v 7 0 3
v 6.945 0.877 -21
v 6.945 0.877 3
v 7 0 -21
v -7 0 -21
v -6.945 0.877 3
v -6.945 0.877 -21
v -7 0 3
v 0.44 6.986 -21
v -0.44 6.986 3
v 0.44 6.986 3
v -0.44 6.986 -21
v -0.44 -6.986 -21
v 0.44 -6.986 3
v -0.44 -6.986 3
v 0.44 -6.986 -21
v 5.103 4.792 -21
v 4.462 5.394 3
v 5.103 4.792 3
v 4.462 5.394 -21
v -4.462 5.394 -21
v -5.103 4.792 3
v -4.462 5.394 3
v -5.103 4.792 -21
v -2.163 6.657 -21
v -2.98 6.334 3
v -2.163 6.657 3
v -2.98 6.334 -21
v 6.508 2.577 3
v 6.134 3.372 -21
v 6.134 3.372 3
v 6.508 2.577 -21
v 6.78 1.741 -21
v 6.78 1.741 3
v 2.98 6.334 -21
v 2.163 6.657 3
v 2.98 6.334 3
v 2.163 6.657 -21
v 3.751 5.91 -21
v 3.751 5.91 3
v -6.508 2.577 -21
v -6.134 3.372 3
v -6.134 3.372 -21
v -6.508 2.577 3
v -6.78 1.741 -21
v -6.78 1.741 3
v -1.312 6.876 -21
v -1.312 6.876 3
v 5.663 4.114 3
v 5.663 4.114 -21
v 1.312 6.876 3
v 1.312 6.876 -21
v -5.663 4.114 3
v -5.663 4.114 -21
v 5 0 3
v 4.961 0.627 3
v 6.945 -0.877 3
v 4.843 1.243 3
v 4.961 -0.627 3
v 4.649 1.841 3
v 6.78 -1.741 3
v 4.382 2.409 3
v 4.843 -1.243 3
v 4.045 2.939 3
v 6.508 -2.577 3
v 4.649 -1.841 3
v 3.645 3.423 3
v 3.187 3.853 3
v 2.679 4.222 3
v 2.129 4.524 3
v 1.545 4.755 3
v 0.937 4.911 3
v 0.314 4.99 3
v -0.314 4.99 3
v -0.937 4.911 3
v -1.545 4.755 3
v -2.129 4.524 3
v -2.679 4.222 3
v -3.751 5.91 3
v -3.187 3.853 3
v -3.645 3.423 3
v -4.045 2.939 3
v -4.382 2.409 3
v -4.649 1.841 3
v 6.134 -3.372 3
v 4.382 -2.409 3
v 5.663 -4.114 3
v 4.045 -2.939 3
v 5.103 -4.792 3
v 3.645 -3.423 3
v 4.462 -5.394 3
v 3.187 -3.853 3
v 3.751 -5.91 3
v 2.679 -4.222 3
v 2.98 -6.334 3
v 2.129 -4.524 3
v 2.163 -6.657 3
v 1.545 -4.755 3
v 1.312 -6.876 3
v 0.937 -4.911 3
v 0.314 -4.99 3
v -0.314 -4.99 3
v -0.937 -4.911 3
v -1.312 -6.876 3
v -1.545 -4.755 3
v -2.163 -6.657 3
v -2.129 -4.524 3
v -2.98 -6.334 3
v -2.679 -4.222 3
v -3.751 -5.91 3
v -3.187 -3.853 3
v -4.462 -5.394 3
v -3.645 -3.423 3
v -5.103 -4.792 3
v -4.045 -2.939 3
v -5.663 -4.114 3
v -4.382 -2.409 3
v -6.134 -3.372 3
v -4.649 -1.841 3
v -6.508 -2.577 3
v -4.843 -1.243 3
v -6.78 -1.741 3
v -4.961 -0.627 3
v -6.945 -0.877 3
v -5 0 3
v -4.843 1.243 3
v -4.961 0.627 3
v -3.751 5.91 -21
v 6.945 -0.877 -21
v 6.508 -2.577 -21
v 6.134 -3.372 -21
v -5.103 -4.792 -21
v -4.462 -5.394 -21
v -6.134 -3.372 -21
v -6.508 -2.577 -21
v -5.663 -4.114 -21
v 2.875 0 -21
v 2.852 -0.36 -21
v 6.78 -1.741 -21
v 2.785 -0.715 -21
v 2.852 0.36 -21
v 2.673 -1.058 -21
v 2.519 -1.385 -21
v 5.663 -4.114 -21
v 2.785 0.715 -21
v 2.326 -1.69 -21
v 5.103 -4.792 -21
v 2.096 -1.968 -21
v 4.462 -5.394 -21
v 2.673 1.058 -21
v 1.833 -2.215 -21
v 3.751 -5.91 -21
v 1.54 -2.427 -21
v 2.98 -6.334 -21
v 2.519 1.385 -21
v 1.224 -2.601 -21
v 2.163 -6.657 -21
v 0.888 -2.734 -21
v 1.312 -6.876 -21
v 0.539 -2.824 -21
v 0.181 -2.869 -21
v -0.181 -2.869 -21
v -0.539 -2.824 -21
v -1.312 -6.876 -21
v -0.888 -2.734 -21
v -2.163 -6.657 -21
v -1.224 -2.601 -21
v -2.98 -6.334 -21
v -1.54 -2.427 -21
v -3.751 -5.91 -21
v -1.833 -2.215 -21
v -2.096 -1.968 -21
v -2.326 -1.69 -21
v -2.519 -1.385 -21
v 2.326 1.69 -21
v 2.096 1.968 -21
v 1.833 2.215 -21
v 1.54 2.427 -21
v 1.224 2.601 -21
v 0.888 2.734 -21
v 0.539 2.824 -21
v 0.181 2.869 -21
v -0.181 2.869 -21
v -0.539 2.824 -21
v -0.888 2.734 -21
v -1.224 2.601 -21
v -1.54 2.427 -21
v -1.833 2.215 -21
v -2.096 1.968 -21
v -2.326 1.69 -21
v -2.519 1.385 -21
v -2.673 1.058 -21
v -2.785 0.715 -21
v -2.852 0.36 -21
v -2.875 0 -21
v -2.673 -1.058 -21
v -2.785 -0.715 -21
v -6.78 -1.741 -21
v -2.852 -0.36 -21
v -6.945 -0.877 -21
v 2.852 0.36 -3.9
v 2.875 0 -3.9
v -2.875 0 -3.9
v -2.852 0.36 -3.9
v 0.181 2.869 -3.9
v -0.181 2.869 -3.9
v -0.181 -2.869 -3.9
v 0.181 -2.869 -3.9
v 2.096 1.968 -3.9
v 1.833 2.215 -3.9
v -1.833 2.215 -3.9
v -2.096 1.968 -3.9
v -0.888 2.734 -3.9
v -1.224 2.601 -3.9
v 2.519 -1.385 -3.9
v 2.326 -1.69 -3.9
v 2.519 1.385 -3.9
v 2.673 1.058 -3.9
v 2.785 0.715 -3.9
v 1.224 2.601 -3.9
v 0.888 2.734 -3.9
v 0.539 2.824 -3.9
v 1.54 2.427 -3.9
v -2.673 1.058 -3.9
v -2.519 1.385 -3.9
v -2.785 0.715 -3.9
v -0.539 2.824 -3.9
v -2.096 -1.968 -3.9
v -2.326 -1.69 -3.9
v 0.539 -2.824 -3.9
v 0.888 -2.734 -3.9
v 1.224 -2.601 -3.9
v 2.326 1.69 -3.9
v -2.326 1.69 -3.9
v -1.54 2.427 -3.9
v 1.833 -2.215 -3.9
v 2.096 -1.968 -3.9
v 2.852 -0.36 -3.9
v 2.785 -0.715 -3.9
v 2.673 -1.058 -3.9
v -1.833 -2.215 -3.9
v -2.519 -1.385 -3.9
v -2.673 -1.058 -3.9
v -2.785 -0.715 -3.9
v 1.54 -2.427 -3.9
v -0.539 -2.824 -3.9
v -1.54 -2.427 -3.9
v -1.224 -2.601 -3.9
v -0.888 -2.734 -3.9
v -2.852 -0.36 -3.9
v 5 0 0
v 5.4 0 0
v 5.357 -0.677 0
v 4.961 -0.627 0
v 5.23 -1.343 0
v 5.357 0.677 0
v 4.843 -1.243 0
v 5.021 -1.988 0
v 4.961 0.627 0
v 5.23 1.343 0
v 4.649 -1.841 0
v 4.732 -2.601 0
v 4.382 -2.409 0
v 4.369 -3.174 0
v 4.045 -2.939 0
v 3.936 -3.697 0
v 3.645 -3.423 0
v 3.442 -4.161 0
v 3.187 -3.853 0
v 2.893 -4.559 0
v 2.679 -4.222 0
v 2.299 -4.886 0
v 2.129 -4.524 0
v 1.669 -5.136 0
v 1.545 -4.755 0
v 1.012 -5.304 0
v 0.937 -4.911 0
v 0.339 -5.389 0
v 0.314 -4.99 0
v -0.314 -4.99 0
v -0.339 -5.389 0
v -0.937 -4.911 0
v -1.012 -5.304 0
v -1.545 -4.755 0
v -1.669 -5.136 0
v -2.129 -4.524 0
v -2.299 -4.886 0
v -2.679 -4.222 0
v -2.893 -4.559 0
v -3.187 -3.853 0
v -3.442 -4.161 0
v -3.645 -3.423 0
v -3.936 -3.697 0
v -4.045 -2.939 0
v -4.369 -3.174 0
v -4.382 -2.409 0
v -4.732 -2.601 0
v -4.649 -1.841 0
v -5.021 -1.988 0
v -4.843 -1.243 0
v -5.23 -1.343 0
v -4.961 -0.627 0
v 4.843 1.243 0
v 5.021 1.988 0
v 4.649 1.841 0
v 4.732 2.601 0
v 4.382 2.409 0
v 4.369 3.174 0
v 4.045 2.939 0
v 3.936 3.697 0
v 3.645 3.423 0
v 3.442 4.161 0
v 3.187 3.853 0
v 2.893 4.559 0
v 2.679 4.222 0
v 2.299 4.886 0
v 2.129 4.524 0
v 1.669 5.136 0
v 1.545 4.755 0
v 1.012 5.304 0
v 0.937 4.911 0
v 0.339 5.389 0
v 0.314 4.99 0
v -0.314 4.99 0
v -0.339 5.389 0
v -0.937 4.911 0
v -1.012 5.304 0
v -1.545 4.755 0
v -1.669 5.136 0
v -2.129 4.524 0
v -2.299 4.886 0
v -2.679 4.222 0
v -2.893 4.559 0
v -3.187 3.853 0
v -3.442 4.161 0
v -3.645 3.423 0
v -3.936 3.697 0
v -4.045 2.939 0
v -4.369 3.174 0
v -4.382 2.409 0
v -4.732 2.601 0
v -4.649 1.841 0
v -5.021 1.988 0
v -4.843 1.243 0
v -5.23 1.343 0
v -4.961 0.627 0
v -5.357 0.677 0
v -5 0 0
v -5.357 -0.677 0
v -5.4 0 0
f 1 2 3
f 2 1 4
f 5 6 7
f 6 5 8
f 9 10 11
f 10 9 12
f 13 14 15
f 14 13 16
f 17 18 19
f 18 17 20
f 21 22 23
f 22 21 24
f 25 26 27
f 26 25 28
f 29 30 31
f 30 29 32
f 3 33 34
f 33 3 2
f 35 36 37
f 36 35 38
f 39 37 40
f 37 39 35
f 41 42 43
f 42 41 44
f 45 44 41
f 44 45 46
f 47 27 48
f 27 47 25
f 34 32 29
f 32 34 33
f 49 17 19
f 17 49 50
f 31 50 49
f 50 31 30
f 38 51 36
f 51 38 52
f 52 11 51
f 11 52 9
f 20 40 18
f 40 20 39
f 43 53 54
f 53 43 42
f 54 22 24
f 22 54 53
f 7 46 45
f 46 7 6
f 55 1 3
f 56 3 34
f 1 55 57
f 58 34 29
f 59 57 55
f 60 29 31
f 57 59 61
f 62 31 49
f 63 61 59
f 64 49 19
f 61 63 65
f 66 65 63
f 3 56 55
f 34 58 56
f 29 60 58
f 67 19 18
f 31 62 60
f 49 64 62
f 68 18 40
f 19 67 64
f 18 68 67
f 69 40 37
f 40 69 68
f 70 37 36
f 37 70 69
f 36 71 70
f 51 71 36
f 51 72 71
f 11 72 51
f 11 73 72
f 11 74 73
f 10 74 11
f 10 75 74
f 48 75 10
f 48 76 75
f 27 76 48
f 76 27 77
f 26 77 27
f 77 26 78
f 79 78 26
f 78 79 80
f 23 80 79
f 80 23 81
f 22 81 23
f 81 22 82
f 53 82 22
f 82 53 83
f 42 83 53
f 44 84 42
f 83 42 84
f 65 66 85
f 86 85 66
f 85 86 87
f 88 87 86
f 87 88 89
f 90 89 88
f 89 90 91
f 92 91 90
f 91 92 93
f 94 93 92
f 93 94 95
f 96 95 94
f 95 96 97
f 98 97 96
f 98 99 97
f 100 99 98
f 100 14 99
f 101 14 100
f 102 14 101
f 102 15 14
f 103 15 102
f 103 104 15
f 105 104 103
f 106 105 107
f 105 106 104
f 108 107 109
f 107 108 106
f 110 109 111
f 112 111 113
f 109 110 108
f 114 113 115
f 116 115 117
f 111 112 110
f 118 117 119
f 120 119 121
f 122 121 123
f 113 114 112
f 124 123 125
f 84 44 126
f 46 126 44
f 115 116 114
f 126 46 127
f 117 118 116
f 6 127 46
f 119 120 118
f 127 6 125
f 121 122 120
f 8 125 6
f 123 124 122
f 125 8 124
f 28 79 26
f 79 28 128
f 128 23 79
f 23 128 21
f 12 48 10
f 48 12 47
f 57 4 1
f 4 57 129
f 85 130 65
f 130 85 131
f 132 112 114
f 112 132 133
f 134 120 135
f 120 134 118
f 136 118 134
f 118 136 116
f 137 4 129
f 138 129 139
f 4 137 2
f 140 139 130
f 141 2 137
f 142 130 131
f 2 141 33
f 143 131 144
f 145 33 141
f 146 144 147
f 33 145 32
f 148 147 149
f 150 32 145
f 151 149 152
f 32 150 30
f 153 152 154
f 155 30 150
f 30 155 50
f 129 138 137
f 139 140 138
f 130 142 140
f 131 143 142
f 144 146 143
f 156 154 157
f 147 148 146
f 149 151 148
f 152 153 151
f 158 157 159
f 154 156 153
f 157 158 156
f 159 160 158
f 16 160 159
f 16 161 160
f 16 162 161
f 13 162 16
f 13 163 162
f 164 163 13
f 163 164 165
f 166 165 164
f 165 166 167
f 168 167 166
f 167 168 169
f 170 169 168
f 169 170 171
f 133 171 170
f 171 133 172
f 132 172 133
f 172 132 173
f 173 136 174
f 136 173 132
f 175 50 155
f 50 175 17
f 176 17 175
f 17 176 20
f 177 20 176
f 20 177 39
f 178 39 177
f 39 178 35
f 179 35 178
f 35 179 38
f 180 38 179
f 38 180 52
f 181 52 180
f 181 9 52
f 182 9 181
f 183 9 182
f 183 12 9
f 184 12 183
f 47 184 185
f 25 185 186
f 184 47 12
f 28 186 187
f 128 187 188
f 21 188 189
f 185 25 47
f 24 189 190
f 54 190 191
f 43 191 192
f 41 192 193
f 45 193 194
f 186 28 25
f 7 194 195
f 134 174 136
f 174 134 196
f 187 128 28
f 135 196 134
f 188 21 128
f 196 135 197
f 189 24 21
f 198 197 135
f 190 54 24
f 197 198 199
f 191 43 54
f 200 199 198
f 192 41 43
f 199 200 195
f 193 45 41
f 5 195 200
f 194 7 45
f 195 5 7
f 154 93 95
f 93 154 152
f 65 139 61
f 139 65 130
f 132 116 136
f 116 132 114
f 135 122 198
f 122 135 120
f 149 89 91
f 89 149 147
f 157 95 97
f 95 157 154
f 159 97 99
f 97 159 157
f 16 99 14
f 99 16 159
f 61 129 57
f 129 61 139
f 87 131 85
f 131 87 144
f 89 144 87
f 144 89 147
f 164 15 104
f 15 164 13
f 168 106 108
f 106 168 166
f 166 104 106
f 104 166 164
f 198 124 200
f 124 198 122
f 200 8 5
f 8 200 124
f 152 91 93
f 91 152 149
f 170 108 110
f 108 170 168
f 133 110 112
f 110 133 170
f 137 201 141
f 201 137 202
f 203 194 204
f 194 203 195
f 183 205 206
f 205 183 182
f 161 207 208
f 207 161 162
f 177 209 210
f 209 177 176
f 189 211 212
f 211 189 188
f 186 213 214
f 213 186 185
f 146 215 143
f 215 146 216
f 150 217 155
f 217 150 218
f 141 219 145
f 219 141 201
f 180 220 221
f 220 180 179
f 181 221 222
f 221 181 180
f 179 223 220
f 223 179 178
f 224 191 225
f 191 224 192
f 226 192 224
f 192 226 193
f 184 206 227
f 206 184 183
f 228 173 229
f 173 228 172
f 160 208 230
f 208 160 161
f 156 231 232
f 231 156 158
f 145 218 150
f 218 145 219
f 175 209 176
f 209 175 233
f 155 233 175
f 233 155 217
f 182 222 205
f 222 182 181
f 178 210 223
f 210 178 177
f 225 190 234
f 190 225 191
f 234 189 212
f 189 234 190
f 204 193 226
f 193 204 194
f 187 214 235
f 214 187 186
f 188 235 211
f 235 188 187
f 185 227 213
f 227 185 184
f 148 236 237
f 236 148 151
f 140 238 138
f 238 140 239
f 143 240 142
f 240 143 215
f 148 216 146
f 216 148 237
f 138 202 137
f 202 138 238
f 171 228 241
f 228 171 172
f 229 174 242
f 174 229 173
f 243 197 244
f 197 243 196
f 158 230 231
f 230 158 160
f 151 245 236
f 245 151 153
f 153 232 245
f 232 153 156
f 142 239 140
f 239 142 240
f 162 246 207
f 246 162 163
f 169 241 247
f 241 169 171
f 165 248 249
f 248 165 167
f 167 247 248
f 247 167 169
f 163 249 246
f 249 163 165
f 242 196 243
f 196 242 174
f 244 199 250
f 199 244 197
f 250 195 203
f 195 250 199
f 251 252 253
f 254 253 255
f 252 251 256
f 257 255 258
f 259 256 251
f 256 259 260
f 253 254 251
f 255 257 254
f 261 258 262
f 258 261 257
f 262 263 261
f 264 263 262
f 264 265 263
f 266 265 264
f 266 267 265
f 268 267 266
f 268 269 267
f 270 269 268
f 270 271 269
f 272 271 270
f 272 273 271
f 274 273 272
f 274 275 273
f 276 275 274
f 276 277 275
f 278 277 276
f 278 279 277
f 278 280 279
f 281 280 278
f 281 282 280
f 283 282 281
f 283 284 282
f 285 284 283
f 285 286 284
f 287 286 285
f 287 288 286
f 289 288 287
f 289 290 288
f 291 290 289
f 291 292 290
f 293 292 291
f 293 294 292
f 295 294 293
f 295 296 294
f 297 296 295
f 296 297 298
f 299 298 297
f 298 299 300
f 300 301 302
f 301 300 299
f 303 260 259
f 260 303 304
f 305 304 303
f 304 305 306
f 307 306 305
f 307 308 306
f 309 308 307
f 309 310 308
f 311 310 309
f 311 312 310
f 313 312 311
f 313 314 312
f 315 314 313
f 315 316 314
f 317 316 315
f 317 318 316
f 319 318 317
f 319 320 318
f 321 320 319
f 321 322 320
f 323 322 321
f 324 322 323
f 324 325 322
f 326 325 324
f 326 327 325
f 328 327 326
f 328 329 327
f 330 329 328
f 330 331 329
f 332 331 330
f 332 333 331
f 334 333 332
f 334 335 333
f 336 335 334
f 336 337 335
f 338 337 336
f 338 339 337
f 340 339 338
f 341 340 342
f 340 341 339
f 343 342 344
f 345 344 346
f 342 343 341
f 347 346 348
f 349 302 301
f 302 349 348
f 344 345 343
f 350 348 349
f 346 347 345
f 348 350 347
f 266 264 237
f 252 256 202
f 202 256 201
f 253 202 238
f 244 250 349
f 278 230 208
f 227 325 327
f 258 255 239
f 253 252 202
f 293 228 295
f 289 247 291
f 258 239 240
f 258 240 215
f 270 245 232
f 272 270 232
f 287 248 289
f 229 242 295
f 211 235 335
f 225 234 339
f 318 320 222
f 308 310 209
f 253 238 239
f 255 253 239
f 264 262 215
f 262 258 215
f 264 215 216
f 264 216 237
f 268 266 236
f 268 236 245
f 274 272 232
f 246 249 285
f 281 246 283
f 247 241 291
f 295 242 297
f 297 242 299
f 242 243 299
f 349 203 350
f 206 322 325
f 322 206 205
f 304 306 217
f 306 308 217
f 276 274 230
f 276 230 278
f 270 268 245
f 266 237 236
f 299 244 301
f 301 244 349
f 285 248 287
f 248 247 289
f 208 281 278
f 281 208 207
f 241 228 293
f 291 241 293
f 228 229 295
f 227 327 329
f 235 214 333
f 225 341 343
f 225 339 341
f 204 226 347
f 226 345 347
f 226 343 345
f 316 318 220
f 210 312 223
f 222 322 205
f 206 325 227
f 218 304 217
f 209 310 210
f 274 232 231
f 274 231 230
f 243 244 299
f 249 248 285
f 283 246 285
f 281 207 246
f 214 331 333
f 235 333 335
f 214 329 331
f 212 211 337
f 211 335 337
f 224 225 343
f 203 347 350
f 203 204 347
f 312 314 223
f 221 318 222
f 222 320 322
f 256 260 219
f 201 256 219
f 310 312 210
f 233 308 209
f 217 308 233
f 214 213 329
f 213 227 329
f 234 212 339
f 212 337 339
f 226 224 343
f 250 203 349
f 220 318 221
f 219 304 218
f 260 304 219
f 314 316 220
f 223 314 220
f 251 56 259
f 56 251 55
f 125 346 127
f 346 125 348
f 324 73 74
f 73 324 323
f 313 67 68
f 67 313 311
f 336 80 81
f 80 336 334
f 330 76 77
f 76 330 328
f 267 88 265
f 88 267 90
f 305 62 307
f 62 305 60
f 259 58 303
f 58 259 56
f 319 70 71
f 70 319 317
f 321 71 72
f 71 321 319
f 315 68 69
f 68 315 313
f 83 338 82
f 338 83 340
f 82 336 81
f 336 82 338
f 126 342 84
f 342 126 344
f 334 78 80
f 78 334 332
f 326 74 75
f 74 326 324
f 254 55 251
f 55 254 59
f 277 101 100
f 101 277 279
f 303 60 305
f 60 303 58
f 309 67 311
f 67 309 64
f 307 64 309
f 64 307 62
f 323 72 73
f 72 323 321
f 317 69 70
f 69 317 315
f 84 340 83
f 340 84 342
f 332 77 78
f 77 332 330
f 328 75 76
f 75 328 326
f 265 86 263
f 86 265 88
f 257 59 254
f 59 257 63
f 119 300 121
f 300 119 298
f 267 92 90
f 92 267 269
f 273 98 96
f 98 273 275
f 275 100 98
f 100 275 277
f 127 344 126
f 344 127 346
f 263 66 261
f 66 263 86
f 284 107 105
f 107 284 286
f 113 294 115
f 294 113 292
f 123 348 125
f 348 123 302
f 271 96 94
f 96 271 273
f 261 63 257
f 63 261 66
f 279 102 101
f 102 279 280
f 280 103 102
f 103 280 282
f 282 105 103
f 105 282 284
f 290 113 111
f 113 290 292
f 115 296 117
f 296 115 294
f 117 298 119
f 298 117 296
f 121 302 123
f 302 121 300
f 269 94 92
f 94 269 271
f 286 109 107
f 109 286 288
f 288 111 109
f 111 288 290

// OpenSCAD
$fn = 50;


difference() {
	union() {
		translate(v = [0, 0, -21.0000000000]) {
			cylinder(h = 24, r = 7.0000000000);
		}
		#translate(v = [0, 0, -24.0000000000]) {
			cylinder(h = 24, r = 2.8750000000);
		}
	}
	union() {
		translate(v = [0, 0, 0]) {
			rotate(a = [0, 0, 0]) {
				difference() {
					union() {
						translate(v = [0, 0, -24.0000000000]) {
							cylinder(h = 24, r = 2.6000000000);
						}
						translate(v = [0, 0, -3.9000000000]) {
							cylinder(h = 3.9000000000, r1 = 2.8750000000, r2 = 5.4000000000);
						}
						translate(v = [0, 0, -24.0000000000]) {
							cylinder(h = 24, r = 2.8750000000);
						}
						translate(v = [0, 0, -24.0000000000]) {
							cylinder(h = 24, r = 2.6000000000);
						}
					}
					union();
				}
			}
		}
		#cylinder(h = 3, r = 5.0000000000);
	}
}
